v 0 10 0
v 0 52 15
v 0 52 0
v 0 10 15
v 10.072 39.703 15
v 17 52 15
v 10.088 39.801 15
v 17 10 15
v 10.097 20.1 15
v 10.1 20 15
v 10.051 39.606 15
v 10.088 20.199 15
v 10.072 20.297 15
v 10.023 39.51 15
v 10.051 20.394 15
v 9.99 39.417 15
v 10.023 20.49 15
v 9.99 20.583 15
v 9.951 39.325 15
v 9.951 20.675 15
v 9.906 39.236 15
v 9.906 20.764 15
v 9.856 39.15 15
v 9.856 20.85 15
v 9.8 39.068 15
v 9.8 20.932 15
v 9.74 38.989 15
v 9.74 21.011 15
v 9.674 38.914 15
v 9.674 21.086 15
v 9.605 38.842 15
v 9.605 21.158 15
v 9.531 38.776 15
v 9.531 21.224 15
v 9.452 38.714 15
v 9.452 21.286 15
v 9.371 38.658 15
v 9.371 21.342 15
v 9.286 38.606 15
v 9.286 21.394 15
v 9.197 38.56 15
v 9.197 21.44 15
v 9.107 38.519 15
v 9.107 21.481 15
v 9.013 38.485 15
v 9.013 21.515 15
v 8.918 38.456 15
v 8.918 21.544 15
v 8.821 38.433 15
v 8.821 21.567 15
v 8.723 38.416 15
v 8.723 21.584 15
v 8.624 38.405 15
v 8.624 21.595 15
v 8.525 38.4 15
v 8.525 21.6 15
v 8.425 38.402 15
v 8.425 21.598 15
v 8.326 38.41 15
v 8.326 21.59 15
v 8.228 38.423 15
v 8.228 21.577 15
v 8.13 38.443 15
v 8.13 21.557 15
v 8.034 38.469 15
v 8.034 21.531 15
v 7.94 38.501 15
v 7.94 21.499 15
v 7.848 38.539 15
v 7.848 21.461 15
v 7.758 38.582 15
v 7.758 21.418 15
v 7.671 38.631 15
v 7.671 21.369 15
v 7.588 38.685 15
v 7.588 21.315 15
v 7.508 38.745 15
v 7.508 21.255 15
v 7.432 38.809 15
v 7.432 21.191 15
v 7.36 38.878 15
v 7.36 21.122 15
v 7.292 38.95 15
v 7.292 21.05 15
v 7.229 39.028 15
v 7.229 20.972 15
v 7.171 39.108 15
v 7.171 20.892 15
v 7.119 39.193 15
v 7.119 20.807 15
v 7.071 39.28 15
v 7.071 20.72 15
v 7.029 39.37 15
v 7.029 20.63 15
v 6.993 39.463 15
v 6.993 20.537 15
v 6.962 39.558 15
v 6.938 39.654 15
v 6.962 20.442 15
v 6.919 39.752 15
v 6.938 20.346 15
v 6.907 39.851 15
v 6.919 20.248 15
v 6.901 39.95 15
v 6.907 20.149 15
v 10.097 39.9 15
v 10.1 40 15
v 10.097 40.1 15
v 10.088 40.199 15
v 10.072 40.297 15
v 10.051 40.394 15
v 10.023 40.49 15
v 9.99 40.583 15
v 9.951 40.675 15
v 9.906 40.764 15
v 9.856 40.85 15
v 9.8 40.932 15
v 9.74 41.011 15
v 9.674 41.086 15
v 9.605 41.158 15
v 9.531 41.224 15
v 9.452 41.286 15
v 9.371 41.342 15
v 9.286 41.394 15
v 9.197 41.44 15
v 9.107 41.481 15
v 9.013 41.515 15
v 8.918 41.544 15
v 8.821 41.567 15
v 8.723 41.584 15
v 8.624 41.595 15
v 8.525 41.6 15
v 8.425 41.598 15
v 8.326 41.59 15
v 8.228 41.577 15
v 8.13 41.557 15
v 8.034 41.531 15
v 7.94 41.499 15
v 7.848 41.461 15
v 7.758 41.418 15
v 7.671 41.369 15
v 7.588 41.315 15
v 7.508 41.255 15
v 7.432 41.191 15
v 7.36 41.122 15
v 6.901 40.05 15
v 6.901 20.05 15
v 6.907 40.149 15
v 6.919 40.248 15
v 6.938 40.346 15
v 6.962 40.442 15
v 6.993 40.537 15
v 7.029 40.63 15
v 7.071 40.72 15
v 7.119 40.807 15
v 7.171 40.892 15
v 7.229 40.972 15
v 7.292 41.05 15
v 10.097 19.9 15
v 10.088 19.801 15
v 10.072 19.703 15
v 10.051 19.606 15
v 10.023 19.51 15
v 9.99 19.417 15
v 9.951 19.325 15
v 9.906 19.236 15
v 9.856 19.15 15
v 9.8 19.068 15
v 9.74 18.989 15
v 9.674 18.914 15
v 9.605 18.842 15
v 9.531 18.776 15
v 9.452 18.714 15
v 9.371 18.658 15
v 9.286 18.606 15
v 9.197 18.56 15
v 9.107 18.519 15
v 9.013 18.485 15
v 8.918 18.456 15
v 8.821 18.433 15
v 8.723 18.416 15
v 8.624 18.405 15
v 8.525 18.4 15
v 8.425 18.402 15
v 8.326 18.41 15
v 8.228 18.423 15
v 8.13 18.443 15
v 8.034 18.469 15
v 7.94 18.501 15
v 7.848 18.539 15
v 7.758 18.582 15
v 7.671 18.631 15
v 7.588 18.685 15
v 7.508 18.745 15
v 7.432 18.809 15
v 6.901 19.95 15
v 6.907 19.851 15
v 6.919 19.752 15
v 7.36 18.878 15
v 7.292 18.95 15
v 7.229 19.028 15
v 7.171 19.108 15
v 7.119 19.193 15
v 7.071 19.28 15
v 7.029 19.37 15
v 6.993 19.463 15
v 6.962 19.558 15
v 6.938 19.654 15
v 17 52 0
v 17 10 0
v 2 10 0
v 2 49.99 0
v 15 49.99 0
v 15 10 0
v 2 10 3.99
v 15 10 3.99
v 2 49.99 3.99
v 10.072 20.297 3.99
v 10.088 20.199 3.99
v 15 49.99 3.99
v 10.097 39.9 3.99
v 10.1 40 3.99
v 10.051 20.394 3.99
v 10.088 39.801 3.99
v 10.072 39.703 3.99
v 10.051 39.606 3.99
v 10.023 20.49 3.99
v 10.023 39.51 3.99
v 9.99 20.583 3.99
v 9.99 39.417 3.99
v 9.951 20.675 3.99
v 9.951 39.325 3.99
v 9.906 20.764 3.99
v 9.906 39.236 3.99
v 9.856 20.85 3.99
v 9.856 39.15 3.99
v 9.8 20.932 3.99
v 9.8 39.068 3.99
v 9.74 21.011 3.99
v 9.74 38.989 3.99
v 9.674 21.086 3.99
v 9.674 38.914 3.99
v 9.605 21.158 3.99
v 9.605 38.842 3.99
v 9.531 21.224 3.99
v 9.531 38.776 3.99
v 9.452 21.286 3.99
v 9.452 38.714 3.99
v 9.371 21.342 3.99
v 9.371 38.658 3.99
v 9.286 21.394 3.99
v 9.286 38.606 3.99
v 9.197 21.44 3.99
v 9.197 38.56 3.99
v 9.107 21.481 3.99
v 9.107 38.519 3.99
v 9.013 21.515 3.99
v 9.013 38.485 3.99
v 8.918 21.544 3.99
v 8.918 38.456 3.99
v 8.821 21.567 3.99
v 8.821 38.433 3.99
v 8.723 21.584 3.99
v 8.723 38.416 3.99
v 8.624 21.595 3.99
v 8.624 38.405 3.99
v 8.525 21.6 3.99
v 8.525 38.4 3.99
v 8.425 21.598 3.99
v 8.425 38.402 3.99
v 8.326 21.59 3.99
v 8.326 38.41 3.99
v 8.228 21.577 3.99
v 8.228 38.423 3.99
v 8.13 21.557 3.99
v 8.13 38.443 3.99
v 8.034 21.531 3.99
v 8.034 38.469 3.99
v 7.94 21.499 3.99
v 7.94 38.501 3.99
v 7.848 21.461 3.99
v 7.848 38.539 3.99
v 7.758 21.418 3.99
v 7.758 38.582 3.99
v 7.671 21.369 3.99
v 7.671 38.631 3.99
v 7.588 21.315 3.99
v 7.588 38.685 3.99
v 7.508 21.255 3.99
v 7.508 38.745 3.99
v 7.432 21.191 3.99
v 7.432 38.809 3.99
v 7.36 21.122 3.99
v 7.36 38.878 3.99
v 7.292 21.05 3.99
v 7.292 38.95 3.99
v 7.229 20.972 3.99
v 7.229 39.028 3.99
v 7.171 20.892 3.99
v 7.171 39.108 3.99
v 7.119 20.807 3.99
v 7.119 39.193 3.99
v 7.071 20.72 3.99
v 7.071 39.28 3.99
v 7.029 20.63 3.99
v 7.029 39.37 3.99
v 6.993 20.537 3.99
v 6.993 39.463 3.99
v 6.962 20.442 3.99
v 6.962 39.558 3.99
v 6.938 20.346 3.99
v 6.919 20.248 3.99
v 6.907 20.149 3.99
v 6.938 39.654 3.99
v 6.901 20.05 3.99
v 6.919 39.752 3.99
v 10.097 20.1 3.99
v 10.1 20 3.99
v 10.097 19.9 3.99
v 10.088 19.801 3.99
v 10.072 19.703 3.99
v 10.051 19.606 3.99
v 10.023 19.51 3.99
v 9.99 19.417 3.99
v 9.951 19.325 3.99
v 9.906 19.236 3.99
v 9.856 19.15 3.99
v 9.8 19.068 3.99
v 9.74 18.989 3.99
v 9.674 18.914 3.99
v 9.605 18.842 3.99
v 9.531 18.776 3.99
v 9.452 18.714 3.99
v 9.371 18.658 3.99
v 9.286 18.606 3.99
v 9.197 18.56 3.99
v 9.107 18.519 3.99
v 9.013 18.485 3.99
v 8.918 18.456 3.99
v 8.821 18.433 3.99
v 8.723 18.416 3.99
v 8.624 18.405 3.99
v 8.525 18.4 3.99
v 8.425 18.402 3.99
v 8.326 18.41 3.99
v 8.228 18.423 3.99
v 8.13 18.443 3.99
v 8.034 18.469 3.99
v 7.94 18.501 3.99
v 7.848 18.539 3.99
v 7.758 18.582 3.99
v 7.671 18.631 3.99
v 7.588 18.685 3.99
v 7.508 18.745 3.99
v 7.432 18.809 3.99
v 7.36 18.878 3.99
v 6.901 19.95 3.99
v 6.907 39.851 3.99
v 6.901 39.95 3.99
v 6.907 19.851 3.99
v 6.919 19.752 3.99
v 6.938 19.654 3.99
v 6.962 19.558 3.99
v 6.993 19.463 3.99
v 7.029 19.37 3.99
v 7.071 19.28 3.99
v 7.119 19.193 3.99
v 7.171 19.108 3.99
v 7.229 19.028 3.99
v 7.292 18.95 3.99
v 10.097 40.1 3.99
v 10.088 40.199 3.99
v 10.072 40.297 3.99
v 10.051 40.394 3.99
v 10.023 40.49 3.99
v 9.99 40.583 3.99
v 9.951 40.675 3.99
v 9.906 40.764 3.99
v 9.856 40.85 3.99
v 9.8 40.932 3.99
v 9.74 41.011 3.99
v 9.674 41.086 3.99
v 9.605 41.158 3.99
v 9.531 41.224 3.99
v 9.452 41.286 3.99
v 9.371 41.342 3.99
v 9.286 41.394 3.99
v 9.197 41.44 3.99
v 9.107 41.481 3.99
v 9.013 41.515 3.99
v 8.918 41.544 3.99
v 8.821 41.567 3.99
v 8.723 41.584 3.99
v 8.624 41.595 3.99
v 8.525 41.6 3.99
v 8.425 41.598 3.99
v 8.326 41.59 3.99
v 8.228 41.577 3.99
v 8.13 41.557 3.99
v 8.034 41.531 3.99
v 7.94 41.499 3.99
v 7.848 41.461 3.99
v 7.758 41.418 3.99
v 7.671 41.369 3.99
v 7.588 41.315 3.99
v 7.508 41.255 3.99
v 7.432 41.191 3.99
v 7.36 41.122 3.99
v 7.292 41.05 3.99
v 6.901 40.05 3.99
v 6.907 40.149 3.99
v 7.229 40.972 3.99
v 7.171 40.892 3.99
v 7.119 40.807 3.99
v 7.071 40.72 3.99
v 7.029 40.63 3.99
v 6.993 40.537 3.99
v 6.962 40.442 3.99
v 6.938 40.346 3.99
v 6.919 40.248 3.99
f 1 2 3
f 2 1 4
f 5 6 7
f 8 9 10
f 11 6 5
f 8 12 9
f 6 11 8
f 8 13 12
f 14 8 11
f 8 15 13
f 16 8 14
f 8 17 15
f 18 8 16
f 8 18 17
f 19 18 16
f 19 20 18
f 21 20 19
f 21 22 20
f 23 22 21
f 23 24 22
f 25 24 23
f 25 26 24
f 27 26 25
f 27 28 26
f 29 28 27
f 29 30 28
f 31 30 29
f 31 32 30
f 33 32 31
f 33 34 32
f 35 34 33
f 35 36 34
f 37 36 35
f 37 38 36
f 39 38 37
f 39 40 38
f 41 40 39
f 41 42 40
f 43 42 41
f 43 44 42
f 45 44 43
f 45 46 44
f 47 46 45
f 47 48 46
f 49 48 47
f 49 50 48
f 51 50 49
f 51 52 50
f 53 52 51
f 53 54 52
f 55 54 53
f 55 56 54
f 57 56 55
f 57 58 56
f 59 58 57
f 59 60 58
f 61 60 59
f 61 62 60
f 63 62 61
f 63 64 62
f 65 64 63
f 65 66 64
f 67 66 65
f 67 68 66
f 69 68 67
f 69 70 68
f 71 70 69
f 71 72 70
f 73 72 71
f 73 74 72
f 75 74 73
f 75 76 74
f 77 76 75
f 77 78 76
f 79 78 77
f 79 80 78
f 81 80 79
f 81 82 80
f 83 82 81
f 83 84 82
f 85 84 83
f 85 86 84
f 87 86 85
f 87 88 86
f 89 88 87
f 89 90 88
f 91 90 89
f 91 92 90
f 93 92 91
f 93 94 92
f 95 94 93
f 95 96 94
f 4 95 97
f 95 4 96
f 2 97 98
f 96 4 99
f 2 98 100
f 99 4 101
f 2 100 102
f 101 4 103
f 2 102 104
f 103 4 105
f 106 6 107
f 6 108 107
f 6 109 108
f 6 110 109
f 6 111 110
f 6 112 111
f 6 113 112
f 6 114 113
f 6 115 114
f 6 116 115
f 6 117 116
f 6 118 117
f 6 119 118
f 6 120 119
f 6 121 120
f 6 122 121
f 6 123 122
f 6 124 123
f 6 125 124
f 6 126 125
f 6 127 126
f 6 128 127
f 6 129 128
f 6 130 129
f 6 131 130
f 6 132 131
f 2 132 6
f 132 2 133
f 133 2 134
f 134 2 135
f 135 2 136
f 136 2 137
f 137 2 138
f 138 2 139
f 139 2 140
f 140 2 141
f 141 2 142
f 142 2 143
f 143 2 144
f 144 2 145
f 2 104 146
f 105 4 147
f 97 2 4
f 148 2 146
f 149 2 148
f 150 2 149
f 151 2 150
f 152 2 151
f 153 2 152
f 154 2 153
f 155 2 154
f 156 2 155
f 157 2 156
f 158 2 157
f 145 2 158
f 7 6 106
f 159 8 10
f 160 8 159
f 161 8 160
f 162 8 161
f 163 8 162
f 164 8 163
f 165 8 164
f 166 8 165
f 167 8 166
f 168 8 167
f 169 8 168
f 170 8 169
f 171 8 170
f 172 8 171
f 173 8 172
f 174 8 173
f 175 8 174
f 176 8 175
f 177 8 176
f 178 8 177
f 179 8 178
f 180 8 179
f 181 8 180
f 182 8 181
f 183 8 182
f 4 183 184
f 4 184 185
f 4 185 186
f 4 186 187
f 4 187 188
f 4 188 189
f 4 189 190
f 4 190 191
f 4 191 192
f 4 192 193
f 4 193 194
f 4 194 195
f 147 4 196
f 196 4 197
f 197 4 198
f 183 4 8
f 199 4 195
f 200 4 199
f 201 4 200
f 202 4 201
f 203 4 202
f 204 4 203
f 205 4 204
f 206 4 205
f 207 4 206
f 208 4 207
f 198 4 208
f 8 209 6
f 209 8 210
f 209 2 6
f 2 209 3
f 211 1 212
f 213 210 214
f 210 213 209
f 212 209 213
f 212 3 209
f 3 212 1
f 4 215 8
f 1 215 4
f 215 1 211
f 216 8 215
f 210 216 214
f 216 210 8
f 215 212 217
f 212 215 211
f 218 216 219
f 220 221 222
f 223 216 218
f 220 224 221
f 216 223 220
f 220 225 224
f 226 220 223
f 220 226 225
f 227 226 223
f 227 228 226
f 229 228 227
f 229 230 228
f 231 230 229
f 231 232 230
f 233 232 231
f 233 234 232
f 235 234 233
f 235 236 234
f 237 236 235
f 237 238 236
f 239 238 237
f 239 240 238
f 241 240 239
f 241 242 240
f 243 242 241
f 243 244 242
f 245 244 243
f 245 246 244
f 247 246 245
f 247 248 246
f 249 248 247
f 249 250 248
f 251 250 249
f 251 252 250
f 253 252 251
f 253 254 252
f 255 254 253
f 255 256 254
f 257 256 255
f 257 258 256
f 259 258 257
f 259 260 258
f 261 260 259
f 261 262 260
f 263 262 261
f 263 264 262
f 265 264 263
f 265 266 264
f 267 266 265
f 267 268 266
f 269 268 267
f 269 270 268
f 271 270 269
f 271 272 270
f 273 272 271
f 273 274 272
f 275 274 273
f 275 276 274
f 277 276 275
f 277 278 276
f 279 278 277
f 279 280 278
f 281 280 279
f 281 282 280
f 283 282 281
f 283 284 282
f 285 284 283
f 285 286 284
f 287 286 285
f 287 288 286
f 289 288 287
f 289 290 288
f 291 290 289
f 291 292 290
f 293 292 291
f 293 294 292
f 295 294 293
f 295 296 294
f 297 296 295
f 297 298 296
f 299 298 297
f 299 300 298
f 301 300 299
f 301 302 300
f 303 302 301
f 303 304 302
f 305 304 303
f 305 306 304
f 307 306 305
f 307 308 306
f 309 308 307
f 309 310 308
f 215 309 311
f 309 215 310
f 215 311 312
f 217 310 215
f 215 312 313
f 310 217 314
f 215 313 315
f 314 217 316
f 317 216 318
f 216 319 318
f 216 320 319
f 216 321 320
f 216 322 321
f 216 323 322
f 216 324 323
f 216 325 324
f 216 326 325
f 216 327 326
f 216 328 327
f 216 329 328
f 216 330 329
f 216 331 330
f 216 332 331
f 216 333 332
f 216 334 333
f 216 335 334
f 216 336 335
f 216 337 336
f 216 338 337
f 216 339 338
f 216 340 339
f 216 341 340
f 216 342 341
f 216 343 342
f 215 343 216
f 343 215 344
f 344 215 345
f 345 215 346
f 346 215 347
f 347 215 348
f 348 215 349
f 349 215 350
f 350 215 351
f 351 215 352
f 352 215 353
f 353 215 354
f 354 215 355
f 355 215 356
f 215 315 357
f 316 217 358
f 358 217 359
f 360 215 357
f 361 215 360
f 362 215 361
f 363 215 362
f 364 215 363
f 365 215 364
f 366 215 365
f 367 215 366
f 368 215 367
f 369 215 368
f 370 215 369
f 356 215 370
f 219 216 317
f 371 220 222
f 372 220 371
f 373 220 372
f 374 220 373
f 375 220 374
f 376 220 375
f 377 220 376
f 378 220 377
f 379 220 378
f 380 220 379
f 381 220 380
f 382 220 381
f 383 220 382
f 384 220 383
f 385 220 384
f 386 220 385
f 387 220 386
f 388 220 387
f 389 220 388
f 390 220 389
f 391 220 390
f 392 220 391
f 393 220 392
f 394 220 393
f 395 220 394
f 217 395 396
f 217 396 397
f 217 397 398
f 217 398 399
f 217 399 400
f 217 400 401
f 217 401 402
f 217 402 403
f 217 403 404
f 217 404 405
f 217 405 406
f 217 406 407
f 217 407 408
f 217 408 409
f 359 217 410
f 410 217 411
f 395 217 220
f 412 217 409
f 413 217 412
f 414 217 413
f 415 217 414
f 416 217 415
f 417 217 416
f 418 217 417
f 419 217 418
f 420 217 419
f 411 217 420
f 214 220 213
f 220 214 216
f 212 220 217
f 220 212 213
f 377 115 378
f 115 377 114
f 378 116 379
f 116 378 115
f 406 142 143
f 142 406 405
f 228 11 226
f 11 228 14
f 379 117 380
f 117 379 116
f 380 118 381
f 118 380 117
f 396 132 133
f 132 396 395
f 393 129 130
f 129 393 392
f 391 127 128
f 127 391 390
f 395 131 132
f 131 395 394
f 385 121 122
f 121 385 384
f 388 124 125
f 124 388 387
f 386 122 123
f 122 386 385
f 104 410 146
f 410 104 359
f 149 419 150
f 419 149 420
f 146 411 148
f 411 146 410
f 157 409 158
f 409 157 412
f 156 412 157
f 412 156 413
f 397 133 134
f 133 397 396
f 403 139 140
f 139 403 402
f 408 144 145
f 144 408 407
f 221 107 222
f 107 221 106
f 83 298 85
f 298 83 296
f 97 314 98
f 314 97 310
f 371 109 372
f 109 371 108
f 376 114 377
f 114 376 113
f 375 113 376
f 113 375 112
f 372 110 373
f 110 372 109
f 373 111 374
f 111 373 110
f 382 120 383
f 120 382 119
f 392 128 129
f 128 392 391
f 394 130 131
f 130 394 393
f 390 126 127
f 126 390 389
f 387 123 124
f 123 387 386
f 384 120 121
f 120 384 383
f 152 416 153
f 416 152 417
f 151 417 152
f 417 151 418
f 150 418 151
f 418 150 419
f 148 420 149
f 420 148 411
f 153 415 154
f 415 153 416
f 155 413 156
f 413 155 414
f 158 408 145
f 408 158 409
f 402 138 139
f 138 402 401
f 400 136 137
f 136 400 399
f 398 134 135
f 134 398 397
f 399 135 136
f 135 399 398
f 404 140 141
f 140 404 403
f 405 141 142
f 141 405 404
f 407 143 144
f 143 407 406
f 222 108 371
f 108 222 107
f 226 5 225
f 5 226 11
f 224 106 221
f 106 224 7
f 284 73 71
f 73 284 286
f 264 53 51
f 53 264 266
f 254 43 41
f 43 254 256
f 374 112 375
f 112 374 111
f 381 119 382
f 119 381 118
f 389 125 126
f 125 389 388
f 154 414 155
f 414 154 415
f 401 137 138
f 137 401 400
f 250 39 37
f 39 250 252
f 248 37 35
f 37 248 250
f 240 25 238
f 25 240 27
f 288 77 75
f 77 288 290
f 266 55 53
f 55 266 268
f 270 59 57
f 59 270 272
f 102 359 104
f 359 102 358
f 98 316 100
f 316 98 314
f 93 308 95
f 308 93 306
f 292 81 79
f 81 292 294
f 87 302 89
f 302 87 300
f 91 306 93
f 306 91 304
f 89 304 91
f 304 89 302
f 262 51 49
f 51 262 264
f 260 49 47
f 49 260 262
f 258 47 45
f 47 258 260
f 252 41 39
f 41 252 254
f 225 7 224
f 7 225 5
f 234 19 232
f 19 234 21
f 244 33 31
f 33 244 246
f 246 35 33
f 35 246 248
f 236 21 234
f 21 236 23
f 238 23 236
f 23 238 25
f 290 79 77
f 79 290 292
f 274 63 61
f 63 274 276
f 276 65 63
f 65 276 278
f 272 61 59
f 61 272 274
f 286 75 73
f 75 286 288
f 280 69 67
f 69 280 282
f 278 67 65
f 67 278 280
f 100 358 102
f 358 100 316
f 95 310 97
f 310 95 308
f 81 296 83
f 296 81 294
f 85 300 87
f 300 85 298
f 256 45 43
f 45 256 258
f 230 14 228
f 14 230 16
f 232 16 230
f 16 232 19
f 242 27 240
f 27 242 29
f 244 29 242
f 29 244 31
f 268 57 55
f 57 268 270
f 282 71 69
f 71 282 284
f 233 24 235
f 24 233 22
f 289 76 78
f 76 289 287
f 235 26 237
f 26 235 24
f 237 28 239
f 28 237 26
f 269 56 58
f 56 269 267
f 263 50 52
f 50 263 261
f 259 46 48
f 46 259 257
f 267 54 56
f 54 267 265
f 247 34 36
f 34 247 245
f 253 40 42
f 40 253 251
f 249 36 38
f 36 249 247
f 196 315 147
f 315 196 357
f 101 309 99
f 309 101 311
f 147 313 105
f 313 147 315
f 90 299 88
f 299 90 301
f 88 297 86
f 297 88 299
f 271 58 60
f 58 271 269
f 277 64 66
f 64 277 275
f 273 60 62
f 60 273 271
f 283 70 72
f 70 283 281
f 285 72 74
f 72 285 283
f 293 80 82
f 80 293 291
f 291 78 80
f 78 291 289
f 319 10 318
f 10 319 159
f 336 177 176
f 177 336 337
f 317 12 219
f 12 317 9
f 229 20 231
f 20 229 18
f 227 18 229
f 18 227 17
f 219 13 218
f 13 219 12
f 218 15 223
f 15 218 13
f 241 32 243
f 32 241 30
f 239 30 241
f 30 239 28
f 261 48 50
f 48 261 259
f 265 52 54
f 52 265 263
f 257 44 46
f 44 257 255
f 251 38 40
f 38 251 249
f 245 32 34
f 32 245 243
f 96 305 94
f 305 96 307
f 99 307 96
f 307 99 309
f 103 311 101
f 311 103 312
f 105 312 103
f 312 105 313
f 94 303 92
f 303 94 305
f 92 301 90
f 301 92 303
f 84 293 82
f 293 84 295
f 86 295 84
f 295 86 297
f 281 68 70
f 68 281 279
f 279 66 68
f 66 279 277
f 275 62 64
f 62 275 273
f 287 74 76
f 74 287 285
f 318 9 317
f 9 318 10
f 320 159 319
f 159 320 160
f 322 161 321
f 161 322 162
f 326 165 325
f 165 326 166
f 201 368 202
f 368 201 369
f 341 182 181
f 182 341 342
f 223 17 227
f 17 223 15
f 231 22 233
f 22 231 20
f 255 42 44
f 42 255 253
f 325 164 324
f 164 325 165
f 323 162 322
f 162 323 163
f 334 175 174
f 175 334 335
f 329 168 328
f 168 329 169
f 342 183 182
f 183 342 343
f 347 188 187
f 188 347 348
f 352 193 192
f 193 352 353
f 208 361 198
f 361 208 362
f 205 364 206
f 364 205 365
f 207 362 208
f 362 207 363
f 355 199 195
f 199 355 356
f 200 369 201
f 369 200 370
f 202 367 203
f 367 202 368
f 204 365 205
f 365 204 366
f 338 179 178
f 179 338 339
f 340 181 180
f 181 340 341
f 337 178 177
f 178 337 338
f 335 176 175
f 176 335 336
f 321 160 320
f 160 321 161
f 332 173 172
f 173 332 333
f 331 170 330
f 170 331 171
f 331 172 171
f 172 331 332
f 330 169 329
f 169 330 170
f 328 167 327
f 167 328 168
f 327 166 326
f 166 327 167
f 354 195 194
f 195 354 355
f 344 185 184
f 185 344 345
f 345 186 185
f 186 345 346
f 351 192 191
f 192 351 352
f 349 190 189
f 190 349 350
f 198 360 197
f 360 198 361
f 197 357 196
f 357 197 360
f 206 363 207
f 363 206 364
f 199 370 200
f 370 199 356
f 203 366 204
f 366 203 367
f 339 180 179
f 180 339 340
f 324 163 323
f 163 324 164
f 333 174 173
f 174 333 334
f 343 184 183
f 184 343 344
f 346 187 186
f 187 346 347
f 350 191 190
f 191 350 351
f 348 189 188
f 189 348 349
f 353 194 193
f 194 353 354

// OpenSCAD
T = 2;
$fs = 0.1;
$fa = 2;
difference(){
    translate([0,10,0])cube([13+2*T, 40+T, 15]);
    translate([T,-0.01,-0.01])cube([13,50,4]);
    
    translate([13/2+T,40,0])cylinder(r=1.6,h=100,center=true);
    translate([13/2+T,20,0])cylinder(r=1.6,h=100,center=true);
}
